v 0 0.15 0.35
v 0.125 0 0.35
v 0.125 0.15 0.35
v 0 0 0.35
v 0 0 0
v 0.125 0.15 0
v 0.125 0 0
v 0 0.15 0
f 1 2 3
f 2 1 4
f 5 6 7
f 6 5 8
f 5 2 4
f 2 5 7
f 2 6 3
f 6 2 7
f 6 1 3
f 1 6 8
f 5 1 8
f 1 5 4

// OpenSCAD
module tool()
{
    //cube(0.35,0.125,0.15);
    //translate([-0.0625,-0.122,0.00]) 
    cube([0.125,0.15,0.35]);
}
tool();
